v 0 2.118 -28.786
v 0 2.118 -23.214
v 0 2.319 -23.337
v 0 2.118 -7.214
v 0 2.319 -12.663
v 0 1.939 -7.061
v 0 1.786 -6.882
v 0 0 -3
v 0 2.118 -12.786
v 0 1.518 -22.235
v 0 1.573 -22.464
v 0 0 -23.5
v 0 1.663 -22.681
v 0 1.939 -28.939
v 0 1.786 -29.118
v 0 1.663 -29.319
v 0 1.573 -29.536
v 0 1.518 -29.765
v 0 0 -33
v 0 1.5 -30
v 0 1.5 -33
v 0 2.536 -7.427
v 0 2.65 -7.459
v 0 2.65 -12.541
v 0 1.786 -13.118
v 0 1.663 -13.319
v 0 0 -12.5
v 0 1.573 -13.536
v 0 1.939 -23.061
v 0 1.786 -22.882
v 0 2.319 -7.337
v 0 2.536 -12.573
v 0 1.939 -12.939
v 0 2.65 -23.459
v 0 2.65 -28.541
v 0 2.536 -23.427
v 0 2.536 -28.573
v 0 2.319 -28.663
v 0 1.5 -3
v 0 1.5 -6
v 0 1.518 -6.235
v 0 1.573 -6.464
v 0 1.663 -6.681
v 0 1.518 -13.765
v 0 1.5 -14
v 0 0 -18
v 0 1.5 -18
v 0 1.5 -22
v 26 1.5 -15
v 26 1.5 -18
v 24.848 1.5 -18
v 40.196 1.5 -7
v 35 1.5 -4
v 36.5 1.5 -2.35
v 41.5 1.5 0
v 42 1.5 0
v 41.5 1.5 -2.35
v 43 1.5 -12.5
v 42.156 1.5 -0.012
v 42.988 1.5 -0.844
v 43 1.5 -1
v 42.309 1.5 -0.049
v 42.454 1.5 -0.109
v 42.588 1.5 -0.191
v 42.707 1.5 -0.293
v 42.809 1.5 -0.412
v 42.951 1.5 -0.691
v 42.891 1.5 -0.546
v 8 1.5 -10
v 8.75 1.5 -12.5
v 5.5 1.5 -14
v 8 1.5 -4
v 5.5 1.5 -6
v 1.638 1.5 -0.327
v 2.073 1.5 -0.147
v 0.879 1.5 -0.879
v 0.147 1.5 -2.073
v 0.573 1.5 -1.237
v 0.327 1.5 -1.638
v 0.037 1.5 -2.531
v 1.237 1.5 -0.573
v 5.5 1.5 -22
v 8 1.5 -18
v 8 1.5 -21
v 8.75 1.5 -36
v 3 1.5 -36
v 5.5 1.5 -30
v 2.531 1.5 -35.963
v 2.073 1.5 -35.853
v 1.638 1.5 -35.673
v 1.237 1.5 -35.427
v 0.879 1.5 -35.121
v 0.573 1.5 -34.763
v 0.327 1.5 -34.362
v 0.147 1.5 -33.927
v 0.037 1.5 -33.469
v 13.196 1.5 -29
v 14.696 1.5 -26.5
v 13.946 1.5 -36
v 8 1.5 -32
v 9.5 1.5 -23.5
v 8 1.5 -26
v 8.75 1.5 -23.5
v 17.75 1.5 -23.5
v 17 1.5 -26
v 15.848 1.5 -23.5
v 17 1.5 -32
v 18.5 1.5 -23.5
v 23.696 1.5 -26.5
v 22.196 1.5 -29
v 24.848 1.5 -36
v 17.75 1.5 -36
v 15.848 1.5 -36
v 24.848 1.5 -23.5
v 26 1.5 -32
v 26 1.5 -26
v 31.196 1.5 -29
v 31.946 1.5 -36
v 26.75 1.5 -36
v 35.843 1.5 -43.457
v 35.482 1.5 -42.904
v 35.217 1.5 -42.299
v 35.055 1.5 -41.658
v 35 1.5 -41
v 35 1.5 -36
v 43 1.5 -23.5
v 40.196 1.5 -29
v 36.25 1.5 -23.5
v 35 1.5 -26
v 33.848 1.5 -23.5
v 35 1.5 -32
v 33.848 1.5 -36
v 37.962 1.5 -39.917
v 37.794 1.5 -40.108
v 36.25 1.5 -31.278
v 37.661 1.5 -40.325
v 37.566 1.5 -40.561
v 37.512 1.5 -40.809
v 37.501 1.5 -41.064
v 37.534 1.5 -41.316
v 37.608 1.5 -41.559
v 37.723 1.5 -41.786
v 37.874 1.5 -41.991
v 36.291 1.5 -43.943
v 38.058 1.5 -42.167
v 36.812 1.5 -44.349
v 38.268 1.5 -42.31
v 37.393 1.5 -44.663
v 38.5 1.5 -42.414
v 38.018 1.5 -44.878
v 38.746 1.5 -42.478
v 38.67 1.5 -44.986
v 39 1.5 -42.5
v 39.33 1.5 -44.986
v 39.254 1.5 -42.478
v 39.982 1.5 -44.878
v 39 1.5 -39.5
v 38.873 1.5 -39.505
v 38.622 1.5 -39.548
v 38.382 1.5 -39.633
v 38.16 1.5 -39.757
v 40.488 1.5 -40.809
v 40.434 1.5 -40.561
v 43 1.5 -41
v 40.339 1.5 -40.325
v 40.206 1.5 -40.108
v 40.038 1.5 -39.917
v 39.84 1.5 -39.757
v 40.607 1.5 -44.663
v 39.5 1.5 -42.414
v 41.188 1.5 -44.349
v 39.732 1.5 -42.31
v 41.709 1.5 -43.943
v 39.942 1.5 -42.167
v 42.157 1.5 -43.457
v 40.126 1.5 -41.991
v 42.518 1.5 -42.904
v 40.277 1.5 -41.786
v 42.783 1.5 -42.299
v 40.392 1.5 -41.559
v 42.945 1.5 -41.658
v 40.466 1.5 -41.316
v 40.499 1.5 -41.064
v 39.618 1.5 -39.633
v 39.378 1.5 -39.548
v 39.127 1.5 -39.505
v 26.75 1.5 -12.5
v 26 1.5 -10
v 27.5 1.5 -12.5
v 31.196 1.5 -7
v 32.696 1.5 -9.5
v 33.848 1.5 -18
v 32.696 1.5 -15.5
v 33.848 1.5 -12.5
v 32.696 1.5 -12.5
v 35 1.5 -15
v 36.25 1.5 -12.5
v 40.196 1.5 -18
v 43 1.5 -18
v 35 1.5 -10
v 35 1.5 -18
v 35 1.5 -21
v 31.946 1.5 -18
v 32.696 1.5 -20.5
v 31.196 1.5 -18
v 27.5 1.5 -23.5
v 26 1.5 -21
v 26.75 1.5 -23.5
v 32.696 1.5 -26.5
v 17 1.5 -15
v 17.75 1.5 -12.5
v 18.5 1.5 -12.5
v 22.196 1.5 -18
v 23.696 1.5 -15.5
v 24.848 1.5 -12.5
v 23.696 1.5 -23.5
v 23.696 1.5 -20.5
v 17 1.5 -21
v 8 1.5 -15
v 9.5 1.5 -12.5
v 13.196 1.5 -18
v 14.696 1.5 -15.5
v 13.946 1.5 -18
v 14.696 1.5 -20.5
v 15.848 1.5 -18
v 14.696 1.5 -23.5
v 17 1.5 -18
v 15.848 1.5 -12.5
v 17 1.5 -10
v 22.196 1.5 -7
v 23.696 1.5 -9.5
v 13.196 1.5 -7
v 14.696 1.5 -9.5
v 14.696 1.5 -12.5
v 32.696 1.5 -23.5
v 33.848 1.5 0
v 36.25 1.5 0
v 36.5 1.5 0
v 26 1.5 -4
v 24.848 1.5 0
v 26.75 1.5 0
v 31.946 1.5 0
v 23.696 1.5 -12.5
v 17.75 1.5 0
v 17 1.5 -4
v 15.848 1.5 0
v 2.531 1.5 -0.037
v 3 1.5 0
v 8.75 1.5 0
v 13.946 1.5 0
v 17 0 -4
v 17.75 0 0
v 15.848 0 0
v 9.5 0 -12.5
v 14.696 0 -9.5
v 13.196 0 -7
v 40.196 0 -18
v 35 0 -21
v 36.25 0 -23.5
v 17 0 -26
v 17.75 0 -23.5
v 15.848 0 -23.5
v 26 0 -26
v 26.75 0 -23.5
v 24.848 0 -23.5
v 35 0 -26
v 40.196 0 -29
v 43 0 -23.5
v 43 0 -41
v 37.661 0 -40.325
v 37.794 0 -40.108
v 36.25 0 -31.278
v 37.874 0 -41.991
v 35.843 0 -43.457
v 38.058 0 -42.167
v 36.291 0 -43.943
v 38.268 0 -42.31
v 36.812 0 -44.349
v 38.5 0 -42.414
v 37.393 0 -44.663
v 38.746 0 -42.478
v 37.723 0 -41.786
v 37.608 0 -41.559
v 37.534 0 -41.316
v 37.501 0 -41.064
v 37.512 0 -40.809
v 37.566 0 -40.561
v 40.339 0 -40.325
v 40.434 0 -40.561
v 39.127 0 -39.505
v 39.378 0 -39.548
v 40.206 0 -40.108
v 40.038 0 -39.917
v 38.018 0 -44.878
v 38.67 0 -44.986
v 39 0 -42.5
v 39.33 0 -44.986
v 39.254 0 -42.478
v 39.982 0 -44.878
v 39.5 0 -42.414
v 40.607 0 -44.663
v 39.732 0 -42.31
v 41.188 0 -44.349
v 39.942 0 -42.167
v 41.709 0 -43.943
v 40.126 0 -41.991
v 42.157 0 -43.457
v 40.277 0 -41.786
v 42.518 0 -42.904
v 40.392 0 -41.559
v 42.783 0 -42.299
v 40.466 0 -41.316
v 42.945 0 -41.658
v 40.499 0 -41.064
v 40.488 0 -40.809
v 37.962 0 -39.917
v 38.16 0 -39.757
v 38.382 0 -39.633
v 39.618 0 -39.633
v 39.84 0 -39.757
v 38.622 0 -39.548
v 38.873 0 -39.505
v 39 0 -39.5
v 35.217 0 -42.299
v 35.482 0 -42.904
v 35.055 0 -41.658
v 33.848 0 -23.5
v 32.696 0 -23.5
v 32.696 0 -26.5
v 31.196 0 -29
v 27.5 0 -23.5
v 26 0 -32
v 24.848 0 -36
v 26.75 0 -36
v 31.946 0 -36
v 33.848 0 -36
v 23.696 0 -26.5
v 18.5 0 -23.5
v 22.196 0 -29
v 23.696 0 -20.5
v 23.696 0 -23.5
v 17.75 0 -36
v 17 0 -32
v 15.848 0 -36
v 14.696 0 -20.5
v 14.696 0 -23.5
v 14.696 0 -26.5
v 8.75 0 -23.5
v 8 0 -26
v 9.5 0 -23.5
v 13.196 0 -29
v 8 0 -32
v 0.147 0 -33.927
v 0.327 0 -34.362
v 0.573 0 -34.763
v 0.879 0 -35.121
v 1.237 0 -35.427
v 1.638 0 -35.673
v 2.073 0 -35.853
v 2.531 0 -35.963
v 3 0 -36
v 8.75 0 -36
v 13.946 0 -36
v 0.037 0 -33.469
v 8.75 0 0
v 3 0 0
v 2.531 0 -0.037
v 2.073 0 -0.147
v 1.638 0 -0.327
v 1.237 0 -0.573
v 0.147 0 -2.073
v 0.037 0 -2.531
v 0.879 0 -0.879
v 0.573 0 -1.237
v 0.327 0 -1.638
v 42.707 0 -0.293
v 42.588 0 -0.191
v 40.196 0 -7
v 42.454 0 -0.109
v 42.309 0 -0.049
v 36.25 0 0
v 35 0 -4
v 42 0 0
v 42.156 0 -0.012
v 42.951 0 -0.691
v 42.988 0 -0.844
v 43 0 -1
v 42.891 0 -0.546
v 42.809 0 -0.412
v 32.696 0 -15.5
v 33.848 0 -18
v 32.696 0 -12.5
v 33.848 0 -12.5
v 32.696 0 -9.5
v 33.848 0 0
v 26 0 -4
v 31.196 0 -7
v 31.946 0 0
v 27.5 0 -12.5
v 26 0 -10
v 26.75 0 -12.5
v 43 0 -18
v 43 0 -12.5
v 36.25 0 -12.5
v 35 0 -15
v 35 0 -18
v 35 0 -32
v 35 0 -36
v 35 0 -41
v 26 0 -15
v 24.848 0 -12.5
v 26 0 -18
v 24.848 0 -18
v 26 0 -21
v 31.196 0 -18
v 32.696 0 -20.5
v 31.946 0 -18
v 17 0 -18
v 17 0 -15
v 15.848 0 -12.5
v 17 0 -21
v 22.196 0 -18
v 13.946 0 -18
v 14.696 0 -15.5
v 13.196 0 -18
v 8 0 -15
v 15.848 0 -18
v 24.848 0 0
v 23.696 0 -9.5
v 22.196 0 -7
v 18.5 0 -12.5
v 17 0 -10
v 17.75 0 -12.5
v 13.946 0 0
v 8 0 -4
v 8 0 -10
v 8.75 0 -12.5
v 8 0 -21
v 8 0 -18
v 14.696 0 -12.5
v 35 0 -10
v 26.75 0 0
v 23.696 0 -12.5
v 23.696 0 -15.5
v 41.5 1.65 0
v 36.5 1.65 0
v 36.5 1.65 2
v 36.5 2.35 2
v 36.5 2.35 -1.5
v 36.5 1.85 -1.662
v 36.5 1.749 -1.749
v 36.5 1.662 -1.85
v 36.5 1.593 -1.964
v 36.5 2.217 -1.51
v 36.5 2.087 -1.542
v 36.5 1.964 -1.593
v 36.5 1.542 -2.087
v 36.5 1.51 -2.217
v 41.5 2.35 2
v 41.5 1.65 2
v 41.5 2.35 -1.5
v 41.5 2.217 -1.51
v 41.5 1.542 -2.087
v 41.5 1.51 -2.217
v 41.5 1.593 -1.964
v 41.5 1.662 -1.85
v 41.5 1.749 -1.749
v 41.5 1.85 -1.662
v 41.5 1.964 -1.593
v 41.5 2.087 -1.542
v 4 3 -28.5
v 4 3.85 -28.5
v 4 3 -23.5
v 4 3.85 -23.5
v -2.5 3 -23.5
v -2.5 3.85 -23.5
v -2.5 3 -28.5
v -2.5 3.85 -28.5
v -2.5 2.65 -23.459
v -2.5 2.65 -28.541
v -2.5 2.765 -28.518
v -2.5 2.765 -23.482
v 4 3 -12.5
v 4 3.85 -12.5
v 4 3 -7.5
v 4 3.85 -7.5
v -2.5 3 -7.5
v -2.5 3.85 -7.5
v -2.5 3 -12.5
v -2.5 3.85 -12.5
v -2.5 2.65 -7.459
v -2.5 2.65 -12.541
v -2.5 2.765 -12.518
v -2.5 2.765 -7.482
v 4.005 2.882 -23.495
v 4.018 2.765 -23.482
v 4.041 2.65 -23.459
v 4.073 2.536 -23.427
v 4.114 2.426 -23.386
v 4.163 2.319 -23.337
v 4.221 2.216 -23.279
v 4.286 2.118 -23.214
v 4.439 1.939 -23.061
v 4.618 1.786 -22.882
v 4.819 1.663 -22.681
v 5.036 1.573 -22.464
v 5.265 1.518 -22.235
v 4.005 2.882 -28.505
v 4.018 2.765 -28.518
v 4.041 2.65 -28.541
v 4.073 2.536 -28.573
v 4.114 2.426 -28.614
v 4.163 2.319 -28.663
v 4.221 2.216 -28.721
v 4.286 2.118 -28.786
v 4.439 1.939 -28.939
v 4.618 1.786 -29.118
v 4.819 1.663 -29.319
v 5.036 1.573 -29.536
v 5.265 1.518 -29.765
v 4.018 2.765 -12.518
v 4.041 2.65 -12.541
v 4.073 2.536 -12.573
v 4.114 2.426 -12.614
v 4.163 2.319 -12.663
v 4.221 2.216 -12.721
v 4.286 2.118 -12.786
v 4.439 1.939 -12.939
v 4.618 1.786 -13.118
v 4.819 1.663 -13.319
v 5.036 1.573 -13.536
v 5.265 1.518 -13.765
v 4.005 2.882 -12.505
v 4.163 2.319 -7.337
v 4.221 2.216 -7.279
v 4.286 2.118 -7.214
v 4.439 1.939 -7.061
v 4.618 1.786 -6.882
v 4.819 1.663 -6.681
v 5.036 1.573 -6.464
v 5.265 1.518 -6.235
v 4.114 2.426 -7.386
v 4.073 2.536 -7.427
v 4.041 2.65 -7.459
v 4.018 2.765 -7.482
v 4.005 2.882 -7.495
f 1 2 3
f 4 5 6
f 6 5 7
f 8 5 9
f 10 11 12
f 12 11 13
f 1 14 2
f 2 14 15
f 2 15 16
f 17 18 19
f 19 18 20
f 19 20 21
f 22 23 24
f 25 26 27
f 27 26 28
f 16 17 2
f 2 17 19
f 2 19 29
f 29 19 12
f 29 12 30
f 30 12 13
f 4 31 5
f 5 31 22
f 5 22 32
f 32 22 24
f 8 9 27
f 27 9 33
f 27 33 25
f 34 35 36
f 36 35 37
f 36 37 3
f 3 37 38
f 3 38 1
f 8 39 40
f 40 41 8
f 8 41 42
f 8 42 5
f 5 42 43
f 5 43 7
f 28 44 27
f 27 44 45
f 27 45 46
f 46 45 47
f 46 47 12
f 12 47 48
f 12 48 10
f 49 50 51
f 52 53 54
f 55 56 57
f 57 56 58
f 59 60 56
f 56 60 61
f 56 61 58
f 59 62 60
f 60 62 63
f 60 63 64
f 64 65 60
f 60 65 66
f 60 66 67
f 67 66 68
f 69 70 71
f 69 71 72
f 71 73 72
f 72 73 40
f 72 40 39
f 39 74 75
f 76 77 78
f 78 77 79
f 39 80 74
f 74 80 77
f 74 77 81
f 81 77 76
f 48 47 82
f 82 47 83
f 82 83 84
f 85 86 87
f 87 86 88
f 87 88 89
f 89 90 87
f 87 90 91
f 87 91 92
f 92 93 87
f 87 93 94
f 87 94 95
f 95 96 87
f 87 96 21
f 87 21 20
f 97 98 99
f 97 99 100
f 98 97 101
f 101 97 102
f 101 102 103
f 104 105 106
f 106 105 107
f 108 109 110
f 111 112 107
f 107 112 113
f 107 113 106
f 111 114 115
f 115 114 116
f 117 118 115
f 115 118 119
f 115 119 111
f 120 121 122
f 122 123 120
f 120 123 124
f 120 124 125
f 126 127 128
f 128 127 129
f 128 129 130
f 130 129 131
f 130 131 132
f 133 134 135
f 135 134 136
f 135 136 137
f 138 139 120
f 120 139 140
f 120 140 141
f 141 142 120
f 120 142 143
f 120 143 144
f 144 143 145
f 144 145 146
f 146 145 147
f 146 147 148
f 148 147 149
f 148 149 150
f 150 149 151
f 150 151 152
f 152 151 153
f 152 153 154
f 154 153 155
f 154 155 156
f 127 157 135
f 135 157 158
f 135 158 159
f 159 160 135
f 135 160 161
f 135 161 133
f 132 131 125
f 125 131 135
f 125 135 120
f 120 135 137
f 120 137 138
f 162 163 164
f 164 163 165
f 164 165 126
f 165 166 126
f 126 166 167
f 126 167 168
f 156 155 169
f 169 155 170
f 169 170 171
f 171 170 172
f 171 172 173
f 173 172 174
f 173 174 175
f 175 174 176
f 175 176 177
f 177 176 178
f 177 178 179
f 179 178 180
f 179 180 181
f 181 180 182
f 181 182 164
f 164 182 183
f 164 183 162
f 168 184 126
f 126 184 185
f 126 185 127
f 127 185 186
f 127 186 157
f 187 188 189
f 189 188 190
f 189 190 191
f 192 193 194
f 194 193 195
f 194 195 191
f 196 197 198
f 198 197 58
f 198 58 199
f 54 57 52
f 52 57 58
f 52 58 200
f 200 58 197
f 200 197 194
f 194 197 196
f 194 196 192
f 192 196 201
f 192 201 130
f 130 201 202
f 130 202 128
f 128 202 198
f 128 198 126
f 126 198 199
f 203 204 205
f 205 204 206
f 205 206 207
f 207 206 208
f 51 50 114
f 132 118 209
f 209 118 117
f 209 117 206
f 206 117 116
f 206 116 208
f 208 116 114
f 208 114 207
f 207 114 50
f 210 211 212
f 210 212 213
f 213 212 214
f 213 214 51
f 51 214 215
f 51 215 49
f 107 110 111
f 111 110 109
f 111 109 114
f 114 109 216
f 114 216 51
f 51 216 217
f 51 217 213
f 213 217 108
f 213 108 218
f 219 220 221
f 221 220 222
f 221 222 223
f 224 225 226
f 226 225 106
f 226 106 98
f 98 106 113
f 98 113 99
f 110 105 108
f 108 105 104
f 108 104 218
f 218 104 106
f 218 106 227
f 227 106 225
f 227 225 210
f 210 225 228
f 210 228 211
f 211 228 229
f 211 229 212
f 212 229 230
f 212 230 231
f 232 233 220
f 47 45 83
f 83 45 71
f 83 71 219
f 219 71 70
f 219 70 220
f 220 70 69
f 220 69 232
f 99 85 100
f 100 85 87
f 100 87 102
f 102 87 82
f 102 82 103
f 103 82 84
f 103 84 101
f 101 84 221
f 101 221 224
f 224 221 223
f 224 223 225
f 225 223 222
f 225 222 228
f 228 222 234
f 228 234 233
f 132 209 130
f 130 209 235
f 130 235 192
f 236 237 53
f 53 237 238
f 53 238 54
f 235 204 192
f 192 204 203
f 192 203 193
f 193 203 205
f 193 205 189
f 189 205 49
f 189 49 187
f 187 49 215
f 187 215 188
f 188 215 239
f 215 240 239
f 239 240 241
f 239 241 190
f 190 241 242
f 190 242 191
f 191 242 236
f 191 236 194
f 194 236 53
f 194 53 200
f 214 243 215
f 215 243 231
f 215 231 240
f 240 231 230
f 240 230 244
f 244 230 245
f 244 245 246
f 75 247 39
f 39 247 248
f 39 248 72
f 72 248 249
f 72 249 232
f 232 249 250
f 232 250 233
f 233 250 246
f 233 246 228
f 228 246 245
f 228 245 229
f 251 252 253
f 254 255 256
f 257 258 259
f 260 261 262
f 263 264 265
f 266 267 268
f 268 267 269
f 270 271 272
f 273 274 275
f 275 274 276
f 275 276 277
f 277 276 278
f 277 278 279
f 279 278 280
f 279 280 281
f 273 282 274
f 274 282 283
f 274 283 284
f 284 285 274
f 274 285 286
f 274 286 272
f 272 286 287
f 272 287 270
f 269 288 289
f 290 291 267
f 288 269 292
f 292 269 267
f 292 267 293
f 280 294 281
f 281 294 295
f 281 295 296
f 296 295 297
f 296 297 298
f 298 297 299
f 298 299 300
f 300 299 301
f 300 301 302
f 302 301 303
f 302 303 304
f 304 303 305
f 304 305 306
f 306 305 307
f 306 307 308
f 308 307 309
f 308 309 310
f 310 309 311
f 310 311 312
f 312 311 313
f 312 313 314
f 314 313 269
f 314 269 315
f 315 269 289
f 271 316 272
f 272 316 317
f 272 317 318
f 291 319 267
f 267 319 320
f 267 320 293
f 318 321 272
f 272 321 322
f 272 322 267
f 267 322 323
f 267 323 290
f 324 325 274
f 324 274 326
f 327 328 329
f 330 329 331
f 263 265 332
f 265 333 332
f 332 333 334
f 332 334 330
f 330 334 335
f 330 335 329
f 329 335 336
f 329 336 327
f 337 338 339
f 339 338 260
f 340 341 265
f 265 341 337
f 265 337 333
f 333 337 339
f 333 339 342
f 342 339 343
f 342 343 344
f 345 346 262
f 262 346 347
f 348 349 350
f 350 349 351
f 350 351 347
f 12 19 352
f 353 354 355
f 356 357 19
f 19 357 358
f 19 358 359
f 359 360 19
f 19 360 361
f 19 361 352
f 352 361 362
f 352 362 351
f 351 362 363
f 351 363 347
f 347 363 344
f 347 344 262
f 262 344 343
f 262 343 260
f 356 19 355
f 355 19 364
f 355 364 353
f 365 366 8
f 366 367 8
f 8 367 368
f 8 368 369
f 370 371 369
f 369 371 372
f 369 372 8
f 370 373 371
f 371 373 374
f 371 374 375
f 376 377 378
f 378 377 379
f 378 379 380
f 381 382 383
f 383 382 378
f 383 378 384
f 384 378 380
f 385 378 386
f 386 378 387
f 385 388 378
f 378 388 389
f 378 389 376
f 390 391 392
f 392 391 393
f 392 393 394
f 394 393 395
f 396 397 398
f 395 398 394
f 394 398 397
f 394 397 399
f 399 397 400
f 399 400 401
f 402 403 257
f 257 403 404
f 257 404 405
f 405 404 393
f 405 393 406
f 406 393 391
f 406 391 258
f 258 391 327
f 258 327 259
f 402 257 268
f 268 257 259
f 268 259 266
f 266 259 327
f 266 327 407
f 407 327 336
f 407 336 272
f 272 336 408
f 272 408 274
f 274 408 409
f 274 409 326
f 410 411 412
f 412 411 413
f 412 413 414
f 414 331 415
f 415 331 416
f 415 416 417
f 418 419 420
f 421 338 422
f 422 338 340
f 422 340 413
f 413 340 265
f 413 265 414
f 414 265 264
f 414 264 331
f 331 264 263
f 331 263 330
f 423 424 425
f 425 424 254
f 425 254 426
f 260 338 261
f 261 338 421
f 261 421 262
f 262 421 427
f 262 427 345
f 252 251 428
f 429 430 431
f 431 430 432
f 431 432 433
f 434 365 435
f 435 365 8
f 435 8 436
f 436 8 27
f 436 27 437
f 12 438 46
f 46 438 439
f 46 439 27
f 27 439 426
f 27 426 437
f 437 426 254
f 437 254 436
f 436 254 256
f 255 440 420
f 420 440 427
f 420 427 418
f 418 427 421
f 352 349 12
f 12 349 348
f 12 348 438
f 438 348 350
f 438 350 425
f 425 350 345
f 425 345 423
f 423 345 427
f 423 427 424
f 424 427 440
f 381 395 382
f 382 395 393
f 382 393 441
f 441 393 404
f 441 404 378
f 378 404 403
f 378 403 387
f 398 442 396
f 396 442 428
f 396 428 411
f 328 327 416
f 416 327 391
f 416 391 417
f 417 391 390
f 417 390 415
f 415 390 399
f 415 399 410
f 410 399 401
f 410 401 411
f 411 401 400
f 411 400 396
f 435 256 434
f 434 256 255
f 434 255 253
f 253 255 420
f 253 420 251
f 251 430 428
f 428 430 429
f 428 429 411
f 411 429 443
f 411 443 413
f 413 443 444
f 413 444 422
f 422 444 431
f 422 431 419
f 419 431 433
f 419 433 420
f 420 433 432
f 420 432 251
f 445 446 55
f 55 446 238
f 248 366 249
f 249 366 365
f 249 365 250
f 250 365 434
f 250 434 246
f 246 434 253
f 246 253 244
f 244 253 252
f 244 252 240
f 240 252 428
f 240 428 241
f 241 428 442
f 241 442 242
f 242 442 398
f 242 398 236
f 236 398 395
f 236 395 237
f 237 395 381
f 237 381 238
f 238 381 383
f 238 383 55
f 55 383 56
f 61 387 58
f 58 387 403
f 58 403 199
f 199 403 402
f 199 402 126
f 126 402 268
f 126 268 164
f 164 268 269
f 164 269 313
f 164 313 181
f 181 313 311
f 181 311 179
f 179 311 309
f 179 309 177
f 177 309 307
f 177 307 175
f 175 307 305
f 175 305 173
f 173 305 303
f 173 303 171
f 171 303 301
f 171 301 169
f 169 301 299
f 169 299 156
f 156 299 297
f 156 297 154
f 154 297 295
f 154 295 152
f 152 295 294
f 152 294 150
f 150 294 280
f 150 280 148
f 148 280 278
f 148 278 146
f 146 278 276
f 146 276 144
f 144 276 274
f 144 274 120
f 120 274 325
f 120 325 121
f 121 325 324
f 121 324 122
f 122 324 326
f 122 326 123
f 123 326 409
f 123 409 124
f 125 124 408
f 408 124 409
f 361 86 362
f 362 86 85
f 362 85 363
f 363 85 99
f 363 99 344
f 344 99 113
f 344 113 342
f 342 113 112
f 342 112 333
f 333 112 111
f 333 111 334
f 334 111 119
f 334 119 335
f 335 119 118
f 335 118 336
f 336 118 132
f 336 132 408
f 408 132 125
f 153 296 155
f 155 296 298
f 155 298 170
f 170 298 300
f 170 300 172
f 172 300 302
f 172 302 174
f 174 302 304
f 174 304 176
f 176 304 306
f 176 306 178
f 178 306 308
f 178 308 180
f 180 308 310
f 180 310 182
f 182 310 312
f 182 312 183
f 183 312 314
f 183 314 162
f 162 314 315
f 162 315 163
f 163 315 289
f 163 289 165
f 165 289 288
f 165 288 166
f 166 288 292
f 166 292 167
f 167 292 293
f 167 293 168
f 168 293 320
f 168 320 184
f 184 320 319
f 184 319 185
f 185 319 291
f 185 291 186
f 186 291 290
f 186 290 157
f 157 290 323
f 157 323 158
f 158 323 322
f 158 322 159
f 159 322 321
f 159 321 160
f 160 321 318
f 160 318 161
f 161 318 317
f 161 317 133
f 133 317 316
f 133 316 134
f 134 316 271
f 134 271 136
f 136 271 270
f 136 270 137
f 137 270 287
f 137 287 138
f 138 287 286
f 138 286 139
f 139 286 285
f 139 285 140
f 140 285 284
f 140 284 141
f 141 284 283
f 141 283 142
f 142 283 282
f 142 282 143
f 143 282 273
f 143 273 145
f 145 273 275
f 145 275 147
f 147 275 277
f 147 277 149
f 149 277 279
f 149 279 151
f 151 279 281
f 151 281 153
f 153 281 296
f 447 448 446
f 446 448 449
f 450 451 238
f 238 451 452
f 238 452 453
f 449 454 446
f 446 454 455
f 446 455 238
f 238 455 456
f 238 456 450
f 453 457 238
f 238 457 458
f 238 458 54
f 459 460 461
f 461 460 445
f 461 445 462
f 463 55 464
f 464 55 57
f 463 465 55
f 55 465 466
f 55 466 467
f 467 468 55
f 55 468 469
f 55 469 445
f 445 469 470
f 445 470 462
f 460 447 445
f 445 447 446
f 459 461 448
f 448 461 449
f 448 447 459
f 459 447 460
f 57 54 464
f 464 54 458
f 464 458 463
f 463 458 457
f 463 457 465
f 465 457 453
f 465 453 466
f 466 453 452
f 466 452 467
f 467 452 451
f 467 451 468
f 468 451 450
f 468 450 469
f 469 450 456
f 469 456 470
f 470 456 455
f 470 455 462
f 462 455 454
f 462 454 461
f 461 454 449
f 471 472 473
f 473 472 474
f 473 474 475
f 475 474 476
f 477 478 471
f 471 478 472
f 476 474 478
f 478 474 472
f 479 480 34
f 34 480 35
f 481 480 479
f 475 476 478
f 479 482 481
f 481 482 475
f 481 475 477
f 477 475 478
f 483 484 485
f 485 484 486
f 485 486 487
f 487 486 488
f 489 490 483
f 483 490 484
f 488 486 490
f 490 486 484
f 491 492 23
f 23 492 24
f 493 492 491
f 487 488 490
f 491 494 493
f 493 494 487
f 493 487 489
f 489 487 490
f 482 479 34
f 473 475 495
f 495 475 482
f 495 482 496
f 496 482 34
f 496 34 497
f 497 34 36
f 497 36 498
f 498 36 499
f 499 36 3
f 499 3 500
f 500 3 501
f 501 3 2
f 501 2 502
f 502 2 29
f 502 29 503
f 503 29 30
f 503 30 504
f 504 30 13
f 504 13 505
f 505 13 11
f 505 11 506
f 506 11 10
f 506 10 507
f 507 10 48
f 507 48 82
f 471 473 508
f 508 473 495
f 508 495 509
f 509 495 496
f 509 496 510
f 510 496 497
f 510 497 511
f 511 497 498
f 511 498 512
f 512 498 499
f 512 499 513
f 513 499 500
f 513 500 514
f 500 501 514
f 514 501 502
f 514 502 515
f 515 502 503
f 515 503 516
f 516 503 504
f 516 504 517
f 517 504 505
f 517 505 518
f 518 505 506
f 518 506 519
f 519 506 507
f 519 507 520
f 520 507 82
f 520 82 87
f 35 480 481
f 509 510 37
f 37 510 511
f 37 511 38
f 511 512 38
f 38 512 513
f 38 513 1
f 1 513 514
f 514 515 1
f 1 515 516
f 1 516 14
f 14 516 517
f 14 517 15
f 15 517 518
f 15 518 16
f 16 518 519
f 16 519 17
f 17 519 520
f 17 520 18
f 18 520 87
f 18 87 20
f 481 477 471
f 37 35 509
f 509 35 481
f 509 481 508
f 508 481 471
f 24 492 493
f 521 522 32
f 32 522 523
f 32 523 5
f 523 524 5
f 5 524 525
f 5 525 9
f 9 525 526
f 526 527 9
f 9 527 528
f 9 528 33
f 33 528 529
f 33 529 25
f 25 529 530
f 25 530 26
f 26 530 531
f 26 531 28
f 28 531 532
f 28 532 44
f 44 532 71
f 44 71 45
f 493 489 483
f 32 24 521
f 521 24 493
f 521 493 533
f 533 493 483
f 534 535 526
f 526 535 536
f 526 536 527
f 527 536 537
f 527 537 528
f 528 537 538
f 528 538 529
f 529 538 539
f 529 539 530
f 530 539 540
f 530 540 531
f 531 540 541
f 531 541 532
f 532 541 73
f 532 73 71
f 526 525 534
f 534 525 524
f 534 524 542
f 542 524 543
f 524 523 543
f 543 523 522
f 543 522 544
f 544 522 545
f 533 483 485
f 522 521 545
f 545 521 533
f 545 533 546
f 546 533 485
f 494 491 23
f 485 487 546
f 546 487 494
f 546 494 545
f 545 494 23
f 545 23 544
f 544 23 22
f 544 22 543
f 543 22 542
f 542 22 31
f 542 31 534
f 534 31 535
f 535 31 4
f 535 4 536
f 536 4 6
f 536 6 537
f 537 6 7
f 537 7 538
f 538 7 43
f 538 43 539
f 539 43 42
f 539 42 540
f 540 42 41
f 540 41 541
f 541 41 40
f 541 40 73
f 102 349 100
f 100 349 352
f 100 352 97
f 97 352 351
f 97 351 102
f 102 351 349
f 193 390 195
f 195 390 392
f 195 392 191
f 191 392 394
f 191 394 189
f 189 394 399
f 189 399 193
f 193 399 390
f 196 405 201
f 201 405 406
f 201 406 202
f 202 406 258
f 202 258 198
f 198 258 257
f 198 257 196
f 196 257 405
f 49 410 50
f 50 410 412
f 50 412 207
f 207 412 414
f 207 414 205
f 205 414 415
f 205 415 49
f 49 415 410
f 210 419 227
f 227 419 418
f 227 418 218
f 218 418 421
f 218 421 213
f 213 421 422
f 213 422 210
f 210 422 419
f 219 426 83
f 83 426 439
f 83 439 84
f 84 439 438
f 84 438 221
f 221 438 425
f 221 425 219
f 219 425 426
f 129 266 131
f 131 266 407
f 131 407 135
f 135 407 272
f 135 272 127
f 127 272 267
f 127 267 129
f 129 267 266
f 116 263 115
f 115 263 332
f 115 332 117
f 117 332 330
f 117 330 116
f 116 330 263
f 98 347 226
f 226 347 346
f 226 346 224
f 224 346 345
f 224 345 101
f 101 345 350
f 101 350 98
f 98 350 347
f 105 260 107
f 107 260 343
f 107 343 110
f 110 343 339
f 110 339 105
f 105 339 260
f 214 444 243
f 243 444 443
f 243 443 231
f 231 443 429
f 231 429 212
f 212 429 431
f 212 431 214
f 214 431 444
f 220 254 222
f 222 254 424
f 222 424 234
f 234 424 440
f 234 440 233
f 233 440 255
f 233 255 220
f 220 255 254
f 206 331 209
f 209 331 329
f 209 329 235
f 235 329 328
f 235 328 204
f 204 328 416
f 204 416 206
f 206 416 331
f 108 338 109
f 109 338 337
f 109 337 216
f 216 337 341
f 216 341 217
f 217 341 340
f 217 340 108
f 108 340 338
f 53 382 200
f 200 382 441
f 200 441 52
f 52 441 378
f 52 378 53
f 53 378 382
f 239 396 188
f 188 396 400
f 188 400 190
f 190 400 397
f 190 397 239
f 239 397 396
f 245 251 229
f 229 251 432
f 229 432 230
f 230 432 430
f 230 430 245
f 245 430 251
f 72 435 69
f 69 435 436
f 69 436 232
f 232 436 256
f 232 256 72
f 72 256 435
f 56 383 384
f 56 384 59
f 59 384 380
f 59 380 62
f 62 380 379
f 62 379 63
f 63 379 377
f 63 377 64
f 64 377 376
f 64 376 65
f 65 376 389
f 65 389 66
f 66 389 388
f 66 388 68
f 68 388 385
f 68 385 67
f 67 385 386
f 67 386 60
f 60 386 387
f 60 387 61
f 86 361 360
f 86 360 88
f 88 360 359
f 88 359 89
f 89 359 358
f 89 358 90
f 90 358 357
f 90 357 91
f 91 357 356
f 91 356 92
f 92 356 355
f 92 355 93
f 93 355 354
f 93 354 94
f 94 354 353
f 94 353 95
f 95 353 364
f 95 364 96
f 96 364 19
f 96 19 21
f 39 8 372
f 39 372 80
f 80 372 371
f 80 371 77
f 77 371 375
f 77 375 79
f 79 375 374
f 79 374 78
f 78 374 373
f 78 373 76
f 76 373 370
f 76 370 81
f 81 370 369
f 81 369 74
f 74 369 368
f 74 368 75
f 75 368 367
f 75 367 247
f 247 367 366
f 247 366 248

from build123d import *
from OCP.BRepFilletAPI import BRepFilletAPI_MakeFillet

# Parameters (mm, degrees)
SKETCH1_R                = 1.5
BOSS_EXTRUDE1_DEPTH      = 1.5
BOSS_EXTRUDE2_DEPTH      = 2
BOSS_EXTRUDE2_DEPTH_BACK = 1.5
SKETCH3_W                = 5
SKETCH3_H                = 0.7
SKETCH4_W                = 5
SKETCH4_H                = 1.5
BOSS_EXTRUDE3_DEPTH      = 0.15
FILLET2_R                = 0.85
SKETCH5_W                = 5
SKETCH5_H                = 1.2
BOSS_EXTRUDE4_DEPTH      = 2.5
BOSS_EXTRUDE4_2_DEPTH    = 2.5
SKETCH6_W                = 4
SKETCH6_H                = 5
BOSS_EXTRUDE5_DEPTH      = 2.35
FILLET3_R                = 1.5
CUT_EXTRUDE1_DEPTH       = 2.5
FILLET4_R1               = 3
FILLET4_R2               = 1


with BuildPart() as part:
    # Sketch1 → Boss-Extrude1 (new body)
    with BuildSketch(Plane(origin=(0, 0, 0), x_dir=(1, 0, 0), z_dir=(0, 1, 0))):
        with BuildLine():
            Line((0, 0), (43, 0))
            Line((43, 0), (43, 36))
            Line((43, 36), (43, 41))
            ThreePointArc((43, 41), (39, 45), (35, 41))
            Line((35, 41), (35, 36))
            Line((35, 36), (0, 36))
            Line((0, 36), (0, 0))
        make_face()
        with Locations(Location((39, 41, 0), (0, 0, 270))):
            Circle(SKETCH1_R, mode=Mode.SUBTRACT)
    extrude(amount=BOSS_EXTRUDE1_DEPTH)



with BuildPart() as body_2:
    # Sketch3 → Boss-Extrude2 (new, two sides: drawn at the far end of the back side and taken through both)
    with BuildSketch(Plane.XY.offset(-BOSS_EXTRUDE2_DEPTH_BACK)):
        with Locations((39, 2)):
            Rectangle(SKETCH3_W, SKETCH3_H)
    extrude(amount=BOSS_EXTRUDE2_DEPTH + BOSS_EXTRUDE2_DEPTH_BACK)


with BuildPart() as part_1:
    add(part.part)

    add(body_2.part)  # Boss-Extrude3 merges body 2
    # Sketch4 → Boss-Extrude3 (add)
    with BuildSketch(Plane.XZ.offset(-1.65)):
        with Locations((39, -0.75)):
            Rectangle(SKETCH4_W, SKETCH4_H)
    extrude(amount=BOSS_EXTRUDE3_DEPTH)

    # Fillet2
    fillet2_edges = [part_1.edges().sort_by_distance(p)[0] for p in [
        (39, 1.5, -1.5),
    ]]
    fillet(fillet2_edges, radius=FILLET2_R - 0.0001)  # a hair under: the kernel refuses the full size



with BuildPart() as body_2_2:
    # Sketch5 → Boss-Extrude4 (new body)
    with BuildSketch(Plane.ZY):
        with Locations((-10, 3.25)):
            Rectangle(SKETCH5_W, SKETCH5_H)
    extrude(amount=BOSS_EXTRUDE4_DEPTH)


with BuildPart() as body_3:
    # Sketch5 → Boss-Extrude4 2 (new body)
    with BuildSketch(Plane.ZY):
        with Locations((-26, 3.25)):
            Rectangle(SKETCH5_W, SKETCH5_H)
    extrude(amount=BOSS_EXTRUDE4_2_DEPTH)


with BuildPart() as part_2:
    add(part_1.part)

    add(body_2_2.part)  # Boss-Extrude5 merges body 2 2

    add(body_3.part)  # Boss-Extrude5 merges body 3
    # Sketch6 → Boss-Extrude5 (add)
    with BuildSketch(Plane(origin=(0, 1.5, 0), x_dir=(1, 0, 0), z_dir=(0, 1, 0))):
        with Locations((2, 26)):
            Rectangle(SKETCH6_W, SKETCH6_H)
        with Locations((2, 10)):
            Rectangle(SKETCH6_W, SKETCH6_H)
    extrude(amount=BOSS_EXTRUDE5_DEPTH)

    # Fillet3
    fillet3_edges = [part_2.edges().sort_by_distance(p)[0] for p in [
        (2, 1.5, -7.5),
    ]]
    fillet(fillet3_edges, radius=FILLET3_R)
    fillet3_2_edges = [part_2.edges().sort_by_distance(p)[0] for p in [
        (4, 1.5, -10),
    ]]
    fillet(fillet3_2_edges, radius=FILLET3_R)
    fillet3_3_edges = [part_2.edges().sort_by_distance(p)[0] for p in [
        (2, 1.5, -12.5),
    ]]
    fillet(fillet3_3_edges, radius=FILLET3_R)
    fillet3_4_edges = [part_2.edges().sort_by_distance(p)[0] for p in [
        (2, 1.5, -23.5),
    ]]
    fillet(fillet3_4_edges, radius=FILLET3_R)
    fillet3_5_edges = [part_2.edges().sort_by_distance(p)[0] for p in [
        (4, 1.5, -26),
    ]]
    fillet(fillet3_5_edges, radius=FILLET3_R - 0.0001)  # a hair under: the kernel refuses the full size
    fillet3_6_edges = [part_2.edges().sort_by_distance(p)[0] for p in [
        (2, 1.5, -28.5),
    ]]
    fillet(fillet3_6_edges, radius=FILLET3_R - 0.0001)  # a hair under: the kernel refuses the full size

    # Sketch7 → Cut-Extrude1 (cut)
    with BuildSketch(Plane(origin=(0, 1.5, 0), x_dir=(1, 0, 0), z_dir=(0, 1, 0))):
        Polygon((13.196152423, 29), (8, 32), (8, 26), align=None)
        Polygon((17, 26), (22.196152423, 29), (17, 32), align=None)
        Polygon((26, 26), (31.196152423, 29), (26, 32), align=None)
        Polygon((35, 26), (40.196152423, 29), (35, 32), align=None)
        Polygon((13.196152423, 18), (8, 21), (8, 15), align=None)
        Polygon((17, 15), (22.196152423, 18), (17, 21), align=None)
        Polygon((26, 15), (31.196152423, 18), (26, 21), align=None)
        Polygon((35, 15), (40.196152423, 18), (35, 21), align=None)
        Polygon((13.196152423, 7), (8, 10), (8, 4), align=None)
        Polygon((17, 4), (22.196152423, 7), (17, 10), align=None)
        Polygon((26, 4), (31.196152423, 7), (26, 10), align=None)
        Polygon((35, 4), (40.196152423, 7), (35, 10), align=None)
        Polygon((9.5, 23.5), (14.696152423, 26.5), (14.696152423, 20.5), align=None)
        Polygon((23.696152423, 20.5), (18.5, 23.5), (23.696152423, 26.5), align=None)
        Polygon((32.696152423, 20.5), (27.5, 23.5), (32.696152423, 26.5), align=None)
        Polygon((14.696152423, 9.5), (9.5, 12.5), (14.696152423, 15.5), align=None)
        Polygon((18.5, 12.5), (23.696152423, 15.5), (23.696152423, 9.5), align=None)
        Polygon((32.696152423, 9.5), (27.5, 12.5), (32.696152423, 15.5), align=None)
    extrude(amount=-CUT_EXTRUDE1_DEPTH, mode=Mode.SUBTRACT)

    # Fillet4: one fillet with a radius per group of edges: ONE call of the kernel's fillet builder (fillet() takes one radius for all edges)
    fillet4_edges_1 = [part_2.edges().sort_by_distance(p)[0] for p in [
        (0, 0.75, 0),
        (0, 0.75, -36),
    ]]
    fillet4_edges_2 = [part_2.edges().sort_by_distance(p)[0] for p in [
        (43, 0.75, 0),
    ]]
    fillet4 = BRepFilletAPI_MakeFillet(part_2.part.solid().wrapped)
    for e in fillet4_edges_1:
        fillet4.Add(FILLET4_R1, e.wrapped)
    for e in fillet4_edges_2:
        fillet4.Add(FILLET4_R2, e.wrapped)
    add(Compound.cast(fillet4.Shape()), mode=Mode.REPLACE)


solid = part_2.part
